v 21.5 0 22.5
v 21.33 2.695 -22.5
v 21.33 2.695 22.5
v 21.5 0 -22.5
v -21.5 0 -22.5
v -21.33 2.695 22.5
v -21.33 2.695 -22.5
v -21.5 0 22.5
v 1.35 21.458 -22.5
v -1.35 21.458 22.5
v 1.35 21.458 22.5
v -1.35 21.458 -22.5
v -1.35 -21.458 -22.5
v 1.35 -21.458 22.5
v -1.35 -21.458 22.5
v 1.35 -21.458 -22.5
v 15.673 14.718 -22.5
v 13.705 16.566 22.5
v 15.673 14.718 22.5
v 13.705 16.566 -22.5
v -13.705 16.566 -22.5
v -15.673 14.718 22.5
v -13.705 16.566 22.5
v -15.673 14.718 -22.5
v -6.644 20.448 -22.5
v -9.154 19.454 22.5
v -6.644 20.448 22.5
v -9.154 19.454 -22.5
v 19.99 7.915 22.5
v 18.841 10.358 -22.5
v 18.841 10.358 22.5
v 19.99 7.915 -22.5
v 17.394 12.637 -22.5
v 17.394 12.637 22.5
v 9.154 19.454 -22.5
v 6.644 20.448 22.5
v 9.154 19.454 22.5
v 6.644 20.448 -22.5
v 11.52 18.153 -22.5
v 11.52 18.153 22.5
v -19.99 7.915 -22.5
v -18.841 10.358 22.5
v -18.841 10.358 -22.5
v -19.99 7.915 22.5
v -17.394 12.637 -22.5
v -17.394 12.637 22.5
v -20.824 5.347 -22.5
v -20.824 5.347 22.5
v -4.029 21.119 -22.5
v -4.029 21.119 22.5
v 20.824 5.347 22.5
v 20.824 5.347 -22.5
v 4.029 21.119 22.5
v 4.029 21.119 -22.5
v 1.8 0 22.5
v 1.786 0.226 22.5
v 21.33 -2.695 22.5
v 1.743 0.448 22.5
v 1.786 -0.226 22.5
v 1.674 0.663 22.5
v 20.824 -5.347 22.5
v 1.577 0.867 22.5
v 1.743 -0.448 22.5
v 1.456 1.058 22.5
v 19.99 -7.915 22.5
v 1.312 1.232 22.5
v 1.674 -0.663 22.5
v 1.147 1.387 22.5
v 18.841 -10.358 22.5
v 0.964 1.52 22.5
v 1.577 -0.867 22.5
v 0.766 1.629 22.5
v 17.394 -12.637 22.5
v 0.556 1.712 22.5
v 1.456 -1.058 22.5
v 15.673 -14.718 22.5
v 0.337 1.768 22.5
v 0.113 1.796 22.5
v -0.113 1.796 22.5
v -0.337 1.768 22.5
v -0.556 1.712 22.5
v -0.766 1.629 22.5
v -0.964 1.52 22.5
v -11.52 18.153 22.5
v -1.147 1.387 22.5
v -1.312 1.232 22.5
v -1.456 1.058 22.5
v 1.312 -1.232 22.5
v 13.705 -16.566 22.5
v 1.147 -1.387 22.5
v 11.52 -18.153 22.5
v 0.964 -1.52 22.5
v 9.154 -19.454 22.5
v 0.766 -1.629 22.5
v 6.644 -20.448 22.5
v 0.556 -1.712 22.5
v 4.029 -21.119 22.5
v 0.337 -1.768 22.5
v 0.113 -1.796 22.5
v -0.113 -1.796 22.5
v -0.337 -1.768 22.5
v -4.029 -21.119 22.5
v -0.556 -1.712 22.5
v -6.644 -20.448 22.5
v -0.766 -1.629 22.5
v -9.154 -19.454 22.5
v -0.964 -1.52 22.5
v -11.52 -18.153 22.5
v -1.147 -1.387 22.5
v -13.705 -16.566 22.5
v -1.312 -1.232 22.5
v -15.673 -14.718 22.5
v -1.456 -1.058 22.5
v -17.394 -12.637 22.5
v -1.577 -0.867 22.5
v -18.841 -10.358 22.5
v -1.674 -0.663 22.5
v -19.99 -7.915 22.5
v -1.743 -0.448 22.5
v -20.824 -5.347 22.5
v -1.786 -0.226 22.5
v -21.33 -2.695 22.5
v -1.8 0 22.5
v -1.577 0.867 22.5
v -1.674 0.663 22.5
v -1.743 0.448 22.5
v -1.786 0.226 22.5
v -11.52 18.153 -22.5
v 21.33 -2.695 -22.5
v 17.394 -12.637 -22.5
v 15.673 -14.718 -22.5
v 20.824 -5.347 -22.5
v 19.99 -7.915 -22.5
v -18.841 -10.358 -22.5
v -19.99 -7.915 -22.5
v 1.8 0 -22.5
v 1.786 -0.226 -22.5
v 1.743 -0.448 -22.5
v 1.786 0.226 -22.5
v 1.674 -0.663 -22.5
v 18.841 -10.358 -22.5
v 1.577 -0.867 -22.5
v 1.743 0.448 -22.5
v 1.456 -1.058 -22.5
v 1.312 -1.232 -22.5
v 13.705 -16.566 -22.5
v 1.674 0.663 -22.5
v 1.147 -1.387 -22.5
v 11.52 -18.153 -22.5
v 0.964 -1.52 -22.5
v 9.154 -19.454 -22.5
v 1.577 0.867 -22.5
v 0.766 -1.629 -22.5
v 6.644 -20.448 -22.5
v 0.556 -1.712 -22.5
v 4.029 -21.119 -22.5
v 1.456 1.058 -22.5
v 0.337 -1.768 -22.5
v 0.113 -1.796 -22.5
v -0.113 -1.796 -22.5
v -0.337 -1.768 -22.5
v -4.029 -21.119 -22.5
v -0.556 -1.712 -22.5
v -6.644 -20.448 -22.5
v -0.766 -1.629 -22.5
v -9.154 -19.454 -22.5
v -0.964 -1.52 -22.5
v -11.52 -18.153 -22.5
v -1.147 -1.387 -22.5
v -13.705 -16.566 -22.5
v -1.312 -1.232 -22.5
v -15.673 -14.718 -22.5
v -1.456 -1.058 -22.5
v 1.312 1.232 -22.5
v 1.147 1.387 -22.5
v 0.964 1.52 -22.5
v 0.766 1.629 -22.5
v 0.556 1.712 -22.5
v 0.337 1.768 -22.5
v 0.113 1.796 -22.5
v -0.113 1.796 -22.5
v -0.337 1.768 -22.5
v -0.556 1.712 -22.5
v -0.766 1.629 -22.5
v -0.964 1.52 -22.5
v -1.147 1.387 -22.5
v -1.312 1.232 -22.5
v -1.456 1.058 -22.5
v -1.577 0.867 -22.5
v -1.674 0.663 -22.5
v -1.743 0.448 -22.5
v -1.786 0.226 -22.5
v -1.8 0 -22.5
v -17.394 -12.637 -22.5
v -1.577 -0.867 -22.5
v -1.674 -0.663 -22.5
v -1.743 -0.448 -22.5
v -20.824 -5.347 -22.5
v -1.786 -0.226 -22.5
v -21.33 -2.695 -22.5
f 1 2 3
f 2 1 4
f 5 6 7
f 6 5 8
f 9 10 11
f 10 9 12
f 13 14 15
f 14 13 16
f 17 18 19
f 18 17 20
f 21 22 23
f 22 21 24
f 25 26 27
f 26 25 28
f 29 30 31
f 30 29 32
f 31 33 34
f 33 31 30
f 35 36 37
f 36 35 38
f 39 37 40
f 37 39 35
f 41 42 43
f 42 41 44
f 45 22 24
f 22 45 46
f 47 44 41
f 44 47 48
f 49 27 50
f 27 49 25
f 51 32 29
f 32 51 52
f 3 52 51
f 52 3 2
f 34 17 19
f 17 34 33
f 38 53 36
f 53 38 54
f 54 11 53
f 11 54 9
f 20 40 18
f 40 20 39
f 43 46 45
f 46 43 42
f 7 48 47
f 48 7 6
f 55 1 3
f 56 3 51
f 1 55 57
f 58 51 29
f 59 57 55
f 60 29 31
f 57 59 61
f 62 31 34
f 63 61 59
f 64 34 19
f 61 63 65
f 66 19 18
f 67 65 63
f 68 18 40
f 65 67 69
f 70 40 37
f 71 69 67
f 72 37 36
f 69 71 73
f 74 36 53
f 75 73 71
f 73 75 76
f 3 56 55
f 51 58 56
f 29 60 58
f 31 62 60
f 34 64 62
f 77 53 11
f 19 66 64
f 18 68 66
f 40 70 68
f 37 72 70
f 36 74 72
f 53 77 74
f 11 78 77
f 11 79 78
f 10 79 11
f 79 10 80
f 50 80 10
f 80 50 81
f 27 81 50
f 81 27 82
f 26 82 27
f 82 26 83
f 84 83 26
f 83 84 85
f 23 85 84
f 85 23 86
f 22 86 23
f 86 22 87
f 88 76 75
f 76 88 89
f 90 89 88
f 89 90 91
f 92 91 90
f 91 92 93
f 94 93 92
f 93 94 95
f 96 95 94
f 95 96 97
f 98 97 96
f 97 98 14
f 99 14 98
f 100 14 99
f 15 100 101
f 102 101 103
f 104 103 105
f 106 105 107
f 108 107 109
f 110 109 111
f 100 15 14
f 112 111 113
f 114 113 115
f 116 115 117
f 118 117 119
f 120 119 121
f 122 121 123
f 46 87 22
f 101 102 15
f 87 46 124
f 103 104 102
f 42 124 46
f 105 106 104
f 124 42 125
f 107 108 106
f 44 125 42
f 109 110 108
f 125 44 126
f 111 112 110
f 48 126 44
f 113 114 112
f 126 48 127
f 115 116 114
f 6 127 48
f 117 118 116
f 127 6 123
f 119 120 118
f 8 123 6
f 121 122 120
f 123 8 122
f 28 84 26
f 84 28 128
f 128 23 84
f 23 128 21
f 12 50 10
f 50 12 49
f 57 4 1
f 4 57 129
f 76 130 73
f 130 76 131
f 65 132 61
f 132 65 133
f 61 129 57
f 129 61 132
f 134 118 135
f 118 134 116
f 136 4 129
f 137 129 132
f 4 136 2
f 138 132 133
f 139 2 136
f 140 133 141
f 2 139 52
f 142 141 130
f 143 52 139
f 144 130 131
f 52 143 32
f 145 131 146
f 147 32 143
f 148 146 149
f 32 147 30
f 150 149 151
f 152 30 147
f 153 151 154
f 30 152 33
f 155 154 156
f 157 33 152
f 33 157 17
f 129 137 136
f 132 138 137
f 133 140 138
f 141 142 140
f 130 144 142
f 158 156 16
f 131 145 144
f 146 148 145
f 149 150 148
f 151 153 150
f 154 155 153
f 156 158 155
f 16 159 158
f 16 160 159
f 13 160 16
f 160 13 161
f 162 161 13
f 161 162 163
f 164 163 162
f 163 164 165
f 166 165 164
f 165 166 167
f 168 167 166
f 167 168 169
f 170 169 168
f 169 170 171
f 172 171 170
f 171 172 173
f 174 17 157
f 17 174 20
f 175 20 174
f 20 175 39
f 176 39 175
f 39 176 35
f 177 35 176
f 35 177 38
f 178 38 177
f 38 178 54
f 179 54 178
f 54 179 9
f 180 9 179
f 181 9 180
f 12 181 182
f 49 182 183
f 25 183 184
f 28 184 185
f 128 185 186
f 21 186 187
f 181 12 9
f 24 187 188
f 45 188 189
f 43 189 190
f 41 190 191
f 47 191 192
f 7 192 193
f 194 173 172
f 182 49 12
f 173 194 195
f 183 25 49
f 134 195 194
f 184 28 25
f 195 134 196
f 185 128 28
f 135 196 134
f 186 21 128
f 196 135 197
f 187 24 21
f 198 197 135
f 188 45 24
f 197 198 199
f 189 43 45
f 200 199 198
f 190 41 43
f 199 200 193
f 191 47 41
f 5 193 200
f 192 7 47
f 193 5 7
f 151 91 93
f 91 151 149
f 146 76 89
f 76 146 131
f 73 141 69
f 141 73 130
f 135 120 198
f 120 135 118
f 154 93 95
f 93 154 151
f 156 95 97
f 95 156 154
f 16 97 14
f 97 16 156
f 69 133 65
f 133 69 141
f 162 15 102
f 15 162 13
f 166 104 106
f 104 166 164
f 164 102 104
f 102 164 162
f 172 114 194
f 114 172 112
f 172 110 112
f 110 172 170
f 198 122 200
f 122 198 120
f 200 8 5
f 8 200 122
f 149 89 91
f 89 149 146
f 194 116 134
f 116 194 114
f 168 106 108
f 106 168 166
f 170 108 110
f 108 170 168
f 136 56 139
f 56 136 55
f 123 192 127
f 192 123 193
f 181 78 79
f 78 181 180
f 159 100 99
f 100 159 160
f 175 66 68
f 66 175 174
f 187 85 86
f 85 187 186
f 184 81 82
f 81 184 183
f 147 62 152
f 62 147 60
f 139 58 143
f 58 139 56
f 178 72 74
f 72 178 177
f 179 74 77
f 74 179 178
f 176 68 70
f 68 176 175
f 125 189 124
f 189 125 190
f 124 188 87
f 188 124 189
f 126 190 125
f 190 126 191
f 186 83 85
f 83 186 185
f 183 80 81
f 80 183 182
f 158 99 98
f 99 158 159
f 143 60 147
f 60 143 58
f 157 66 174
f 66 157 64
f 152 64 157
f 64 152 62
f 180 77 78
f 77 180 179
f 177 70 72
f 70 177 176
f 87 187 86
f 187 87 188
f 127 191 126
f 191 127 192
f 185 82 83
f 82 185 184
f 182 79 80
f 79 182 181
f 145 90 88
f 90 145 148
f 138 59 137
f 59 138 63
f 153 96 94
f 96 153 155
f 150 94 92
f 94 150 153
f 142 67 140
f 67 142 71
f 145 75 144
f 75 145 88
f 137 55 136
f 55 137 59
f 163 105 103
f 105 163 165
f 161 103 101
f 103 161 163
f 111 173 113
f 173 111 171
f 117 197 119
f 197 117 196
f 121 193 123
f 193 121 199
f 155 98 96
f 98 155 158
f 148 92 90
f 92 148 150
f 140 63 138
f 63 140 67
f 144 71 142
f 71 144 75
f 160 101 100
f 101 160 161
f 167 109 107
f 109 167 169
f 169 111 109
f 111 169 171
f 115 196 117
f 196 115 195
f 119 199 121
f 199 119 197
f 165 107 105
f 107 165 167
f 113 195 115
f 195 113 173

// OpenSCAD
$fn = 50;


difference() {
	union() {
		translate(v = [0, 0, -22.5000000000]) {
			cylinder(h = 45, r = 21.5000000000);
		}
	}
	union() {
		translate(v = [0, 0, -100.0000000000]) {
			cylinder(h = 200, r = 1.8000000000);
		}
	}
}
